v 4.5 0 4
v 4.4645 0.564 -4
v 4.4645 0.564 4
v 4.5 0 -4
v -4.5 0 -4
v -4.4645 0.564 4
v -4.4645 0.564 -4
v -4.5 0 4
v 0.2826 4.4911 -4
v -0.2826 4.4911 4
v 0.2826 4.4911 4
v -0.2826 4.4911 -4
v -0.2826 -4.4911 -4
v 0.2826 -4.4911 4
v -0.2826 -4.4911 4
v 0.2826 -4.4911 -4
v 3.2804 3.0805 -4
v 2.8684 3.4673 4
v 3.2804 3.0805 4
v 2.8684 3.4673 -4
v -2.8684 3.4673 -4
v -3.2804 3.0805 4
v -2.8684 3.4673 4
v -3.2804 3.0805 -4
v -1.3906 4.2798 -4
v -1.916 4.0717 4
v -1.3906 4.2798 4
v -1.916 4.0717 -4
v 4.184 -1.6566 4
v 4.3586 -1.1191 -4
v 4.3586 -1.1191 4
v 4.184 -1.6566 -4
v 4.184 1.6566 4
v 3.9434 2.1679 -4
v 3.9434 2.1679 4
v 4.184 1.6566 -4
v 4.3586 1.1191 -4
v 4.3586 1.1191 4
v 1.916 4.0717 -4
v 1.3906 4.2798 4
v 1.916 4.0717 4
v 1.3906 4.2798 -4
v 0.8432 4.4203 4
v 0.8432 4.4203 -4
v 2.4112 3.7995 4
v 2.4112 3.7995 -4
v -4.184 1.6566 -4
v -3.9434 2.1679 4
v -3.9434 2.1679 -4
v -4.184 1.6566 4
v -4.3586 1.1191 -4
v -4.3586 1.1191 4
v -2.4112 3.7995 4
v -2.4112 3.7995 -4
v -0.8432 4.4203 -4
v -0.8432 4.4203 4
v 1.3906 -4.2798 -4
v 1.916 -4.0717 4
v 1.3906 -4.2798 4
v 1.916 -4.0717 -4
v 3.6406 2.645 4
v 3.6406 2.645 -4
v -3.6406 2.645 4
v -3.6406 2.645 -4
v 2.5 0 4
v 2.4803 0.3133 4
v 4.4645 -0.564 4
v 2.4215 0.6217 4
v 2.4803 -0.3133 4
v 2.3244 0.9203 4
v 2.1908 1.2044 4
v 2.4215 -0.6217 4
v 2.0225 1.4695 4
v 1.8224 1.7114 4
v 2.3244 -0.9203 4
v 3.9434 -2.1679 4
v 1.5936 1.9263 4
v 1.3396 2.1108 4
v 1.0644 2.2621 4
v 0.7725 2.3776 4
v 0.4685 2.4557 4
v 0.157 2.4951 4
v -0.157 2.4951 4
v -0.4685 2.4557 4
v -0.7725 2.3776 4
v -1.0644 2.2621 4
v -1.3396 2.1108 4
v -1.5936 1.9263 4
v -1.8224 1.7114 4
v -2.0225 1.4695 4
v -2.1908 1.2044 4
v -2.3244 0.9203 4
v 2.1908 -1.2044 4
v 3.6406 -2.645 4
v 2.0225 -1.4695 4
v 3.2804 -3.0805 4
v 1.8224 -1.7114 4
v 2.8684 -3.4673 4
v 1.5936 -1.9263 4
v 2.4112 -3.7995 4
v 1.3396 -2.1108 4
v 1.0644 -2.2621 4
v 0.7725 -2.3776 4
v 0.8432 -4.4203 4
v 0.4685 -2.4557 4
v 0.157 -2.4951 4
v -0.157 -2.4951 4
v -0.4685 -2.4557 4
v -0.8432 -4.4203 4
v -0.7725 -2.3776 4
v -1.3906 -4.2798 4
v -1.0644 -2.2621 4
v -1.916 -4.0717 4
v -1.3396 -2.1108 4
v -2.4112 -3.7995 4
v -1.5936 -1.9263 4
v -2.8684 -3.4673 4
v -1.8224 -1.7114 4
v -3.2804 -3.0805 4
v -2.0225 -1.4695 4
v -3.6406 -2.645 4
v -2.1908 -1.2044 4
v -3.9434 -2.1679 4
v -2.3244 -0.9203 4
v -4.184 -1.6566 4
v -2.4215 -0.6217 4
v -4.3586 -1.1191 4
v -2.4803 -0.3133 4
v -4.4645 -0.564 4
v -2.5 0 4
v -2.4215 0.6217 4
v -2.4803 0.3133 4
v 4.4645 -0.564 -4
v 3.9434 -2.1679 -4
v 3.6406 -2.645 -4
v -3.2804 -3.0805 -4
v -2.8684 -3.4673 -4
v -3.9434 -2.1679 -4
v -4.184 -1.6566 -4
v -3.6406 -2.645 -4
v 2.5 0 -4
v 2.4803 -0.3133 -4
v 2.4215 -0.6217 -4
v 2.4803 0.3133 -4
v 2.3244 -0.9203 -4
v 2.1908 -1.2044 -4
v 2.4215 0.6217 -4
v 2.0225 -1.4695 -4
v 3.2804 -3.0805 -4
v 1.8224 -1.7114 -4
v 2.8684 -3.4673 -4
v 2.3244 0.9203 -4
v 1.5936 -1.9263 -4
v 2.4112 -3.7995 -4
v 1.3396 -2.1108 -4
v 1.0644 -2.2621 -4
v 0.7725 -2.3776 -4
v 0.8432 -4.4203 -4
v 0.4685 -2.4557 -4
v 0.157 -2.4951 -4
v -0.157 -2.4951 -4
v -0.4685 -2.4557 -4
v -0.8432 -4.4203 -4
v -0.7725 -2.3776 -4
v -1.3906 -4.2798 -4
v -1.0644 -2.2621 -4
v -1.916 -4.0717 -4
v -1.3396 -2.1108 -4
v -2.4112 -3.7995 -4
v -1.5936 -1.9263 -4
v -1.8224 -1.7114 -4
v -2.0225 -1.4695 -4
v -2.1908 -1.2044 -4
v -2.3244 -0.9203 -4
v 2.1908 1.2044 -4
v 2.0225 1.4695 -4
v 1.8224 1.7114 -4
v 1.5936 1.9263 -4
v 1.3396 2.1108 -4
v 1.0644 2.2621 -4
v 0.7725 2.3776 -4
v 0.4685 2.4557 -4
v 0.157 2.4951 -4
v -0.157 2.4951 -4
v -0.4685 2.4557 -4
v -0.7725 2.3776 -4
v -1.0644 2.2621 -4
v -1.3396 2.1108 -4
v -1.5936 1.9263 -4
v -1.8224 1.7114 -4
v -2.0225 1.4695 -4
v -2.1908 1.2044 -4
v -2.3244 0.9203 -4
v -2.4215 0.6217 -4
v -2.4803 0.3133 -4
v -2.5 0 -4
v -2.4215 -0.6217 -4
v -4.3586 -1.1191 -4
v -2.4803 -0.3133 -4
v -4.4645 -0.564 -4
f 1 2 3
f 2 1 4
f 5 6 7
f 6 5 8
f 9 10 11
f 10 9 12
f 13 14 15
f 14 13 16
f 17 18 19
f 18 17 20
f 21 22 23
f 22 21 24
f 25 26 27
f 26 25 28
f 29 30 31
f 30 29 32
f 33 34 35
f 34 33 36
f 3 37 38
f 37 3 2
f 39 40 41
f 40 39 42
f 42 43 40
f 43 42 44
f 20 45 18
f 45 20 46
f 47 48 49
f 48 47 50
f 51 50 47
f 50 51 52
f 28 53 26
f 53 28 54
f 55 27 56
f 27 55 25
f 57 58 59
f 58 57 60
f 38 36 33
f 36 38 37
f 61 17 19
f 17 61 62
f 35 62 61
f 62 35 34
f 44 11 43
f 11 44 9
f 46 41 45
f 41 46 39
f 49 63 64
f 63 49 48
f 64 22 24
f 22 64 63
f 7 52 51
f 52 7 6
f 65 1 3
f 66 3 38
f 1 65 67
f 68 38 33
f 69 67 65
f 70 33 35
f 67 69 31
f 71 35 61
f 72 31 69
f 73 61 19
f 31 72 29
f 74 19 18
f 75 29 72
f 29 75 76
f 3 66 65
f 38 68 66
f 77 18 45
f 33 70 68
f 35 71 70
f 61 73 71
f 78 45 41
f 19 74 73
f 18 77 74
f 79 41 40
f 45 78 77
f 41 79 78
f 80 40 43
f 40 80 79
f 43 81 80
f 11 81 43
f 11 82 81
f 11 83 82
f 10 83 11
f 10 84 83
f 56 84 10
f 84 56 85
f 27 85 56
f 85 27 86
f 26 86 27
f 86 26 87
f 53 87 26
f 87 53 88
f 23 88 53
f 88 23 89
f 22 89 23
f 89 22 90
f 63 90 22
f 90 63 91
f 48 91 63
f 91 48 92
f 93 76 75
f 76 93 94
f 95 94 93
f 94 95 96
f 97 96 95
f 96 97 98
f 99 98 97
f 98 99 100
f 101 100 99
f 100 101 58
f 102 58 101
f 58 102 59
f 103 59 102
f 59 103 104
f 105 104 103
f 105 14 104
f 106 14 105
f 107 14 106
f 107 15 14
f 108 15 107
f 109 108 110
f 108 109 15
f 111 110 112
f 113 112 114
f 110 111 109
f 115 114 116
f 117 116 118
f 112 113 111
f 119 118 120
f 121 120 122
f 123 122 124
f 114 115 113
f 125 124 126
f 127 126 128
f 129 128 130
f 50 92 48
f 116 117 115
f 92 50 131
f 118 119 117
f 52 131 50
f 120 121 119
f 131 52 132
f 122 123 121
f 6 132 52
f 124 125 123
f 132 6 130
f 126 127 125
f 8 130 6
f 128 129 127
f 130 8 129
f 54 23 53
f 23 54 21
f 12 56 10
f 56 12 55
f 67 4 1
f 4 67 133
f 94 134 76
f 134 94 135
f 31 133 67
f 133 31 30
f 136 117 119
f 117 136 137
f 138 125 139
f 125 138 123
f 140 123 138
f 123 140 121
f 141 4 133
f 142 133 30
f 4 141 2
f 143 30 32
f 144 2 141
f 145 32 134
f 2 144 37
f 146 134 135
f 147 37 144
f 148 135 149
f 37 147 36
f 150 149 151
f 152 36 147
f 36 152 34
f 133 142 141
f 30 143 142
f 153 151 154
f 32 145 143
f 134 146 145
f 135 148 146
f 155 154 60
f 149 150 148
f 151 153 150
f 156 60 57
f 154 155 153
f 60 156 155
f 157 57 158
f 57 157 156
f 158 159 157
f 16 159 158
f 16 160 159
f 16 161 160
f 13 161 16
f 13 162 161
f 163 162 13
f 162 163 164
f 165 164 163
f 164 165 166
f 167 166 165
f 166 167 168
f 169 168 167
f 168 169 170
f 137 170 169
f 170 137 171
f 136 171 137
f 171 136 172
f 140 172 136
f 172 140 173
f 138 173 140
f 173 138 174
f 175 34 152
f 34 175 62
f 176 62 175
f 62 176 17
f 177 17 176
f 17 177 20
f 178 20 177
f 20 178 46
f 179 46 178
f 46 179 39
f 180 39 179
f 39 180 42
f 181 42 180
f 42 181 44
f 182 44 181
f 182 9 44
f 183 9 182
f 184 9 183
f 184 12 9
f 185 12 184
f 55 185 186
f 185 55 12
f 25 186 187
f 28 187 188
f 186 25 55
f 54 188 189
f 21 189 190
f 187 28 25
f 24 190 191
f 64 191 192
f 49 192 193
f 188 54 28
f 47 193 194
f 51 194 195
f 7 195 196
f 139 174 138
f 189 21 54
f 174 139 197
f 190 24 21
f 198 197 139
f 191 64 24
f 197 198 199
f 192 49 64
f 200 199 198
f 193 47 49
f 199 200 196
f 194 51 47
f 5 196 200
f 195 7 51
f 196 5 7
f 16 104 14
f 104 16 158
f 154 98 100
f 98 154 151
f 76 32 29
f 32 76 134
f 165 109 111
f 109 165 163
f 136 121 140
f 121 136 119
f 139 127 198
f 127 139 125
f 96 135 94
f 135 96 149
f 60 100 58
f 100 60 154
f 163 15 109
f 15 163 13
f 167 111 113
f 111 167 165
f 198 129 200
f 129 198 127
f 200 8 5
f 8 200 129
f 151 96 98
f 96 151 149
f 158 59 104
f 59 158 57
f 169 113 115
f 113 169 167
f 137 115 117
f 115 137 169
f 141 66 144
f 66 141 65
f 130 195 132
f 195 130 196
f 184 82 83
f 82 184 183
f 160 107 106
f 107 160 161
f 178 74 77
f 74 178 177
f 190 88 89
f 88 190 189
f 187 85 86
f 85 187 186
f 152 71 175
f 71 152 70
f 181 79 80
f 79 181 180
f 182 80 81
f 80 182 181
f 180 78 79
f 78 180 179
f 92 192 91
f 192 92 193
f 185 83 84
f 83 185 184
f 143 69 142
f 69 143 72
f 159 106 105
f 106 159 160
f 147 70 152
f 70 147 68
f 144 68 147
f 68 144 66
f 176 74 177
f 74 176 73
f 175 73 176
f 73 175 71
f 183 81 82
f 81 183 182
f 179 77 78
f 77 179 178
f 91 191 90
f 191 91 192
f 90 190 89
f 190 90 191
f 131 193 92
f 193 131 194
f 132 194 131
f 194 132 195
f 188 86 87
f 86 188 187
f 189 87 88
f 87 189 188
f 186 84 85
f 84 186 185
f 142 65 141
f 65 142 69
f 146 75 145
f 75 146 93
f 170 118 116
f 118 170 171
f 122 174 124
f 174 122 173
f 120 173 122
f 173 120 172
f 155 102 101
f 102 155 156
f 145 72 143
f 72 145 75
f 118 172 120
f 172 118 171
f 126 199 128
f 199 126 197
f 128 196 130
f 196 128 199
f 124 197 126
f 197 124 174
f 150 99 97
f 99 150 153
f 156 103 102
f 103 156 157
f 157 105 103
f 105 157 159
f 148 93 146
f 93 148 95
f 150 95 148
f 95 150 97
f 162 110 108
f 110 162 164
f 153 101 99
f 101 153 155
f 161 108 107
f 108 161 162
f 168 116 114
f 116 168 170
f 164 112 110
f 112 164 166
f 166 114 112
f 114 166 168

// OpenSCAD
$fn = 50;


difference() {
	union() {
		translate(v = [0, 0, -4.0000000000]) {
			cylinder(h = 8, r = 4.5000000000);
		}
	}
	union() {
		translate(v = [0, 0, -100.0000000000]) {
			cylinder(h = 200, r = 2.5000000000);
		}
	}
}
